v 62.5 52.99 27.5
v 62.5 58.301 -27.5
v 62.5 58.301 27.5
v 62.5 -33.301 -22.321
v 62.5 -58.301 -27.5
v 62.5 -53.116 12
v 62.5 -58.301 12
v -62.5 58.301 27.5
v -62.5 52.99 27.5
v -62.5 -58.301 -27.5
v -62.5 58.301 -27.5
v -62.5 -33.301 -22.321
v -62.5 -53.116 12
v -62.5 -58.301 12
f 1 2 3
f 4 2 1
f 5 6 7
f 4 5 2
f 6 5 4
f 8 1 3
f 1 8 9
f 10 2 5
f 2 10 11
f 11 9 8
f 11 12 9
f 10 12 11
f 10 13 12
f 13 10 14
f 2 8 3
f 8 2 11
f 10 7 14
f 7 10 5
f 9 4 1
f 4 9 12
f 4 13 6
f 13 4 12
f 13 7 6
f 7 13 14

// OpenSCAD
X = 125;
Y = 100;
Z = 40;
T = 5;
A = 30;
eps = 0.01;

by = T*2 + Y*sin(90-A) + Z*sin(A);
bx = X;
bz = T + Y*sin(A);


difference(){
    cube([bx, by, bz], center = true);

    translate([0,0, Z/2])
        rotate([A, 0, 0])
            cube([X+eps, Y, Z], center = true);
    
    translate([0, -Z, Z*0.8])
        cube([X+eps, Z, Z], center = true);
}
